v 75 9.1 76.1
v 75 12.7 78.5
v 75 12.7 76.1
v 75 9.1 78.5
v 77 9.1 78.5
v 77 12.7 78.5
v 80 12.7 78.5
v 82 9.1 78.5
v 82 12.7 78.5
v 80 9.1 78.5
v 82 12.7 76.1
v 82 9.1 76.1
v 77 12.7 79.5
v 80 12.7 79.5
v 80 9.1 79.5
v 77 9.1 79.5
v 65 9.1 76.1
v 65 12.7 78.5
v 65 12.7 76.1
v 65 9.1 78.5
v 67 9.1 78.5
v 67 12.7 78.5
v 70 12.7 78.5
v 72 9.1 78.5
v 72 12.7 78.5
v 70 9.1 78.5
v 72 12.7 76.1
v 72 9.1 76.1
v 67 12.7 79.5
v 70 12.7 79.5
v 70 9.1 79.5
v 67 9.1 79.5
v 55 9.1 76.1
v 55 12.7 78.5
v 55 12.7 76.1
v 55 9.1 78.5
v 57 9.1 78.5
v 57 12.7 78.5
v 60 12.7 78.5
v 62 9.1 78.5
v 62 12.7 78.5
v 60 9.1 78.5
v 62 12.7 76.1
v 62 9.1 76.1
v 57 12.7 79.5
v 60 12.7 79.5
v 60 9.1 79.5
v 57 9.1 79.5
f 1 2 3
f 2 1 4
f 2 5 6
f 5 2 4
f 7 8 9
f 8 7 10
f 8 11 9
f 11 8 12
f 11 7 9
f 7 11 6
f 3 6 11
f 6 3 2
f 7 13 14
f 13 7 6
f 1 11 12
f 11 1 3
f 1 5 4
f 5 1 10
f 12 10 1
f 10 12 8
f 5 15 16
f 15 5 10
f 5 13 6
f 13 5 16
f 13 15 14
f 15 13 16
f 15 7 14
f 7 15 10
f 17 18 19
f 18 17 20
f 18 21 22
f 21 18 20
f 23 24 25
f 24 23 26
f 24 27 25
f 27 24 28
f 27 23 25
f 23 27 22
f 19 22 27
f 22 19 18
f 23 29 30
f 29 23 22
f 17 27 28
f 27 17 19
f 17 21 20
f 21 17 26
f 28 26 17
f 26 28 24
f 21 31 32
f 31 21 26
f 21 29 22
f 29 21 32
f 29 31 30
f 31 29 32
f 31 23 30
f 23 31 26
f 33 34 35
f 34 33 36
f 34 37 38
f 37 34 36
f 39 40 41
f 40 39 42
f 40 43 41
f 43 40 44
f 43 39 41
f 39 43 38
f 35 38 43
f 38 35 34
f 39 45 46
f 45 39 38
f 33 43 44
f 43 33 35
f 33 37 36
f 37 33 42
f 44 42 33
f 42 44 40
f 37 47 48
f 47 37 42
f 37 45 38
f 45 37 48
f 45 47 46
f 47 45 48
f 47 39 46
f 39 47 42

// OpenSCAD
// file: D:/Projects/assembly-workshop/outputs/Screen_5in_SCR5-G_2026-10-30/checks/geometry.scad
// SCR5-G; mm; FRONT view: X right, Z up, Y into rack. Glass/plate front Y=0.
// Measured values: work/screen-5in/Dimensions.md. Physical fit/strength UNKNOWN.
part="plate";
DROP=0.45; // coupon winner can be substituted here; all three pins use this DROP
LIP=0.8; LIP_ON=true;
LIP_EDGES=[true,true,false,false]; // left,right,bottom,top; Brian: side lips only, cosmetic
FRAME_STEP=1.5; // measured glass-edge inset to metal LCD frame, left/right only
SHIM=0; // moves rear frame seat and plate-boss mating face back
$fn=48;
GCX=33; GCZ=41.5; PW=252; PH=88.8; PT=4;
GW=120.7; GH=77.2; CLEAR=0.2; WW=GW+2*CLEAR; WH=GH+2*CLEAR;
SEAT=13.3+SHIM; FT=3;
SO=[56.45,34]; BTN_X=[45.5,35.5,25.5];
PCB_TOP=38; GAP=0.10; LEAF_T=0.8;
HOLE=[3.4,40.3,44.7];
BX=[GCX-68,GCX+68]; BZ=[10,72];
// DSI connector X extent is unmeasured: conservative assumed 8 mm inward from PCB edge.
DSI=[GCX-60.5,9.1,GCZ-38+30,8,5.25,21];
module xz(y,d){translate([0,y+d,0])rotate([90,0,0])linear_extrude(d)children();}
// rr/rack_slots copied from SCR5-F; same exact slot centres, outline shifted -0.05 Z to centre 44.4.
module rr(w,h,r){hull()for(x=[-w/2+r,w/2-r],z=[-h/2+r,h/2-r])translate([x,z])circle(r=r);}
module rack_slots(){for(x=[-118.2625,118.2625],z=[6.323,38.127,50.773,82.577])translate([x,z])hull()for(dx=[-1.5,1.5])translate([dx,0])circle(d=7);}
module cyl_y(x,y,z,d,h){translate([x,y,z])rotate([-90,0,0])cylinder(d=d,h=h);}
module window_cut(){
  xz(-0.02,4.04)translate([GCX,GCZ])square([WW,WH],center=true);
  // 0.3 x 45-degree chamfer, square corners, front only.
  translate([GCX,0.3,GCZ])rotate([90,0,0])
    linear_extrude(height=0.3,scale=[(WW+0.6)/WW,(WH+0.6)/WH])square([WW,WH],center=true);
}
module lips(){
  // Cosmetic side ledges only; rear frame/standoffs set depth and retain the screen.
  if(LIP_ON)for(i=[0:3])if(LIP_EDGES[i]){
    if(i<2)translate([GCX+(i==0?-WW/2:WW/2-LIP),2.5,GCZ-GH/2+4])cube([LIP,0.8,GH-8]);
    else translate([GCX-GW/2+4,2.5,GCZ+(i==2?-WH/2:WH/2-LIP)])cube([GW-8,0.8,LIP]);
  }
}
// Leaf/nub/bump geometry copied from SCR5-WP-A, translated to this glass centre.
module leaves(){for(x=BTN_X)translate([GCX+x-1.5,0,GCZ]){
  translate([0,0,PCB_TOP+GAP+0.9+0.1])cube([3,11.8,LEAF_T]);
  translate([0,10.2,PCB_TOP+GAP])cube([3,1.4,1.0+LEAF_T/2]);
  translate([0,10.4,PCB_TOP+GAP+1.0+LEAF_T])cube([3,1.0,0.9]);
}}
module plate(){difference(){union(){
  difference(){xz(0,PT)translate([0,PH/2])rr(PW,PH,2.5);window_cut();}
  for(x=BX,z=BZ)cyl_y(x,3.9,z,8,SEAT-3.9);
  leaves(); lips();
 }
 xz(-0.02,4.04)rack_slots();
 for(x=BTN_X)translate([GCX+x-HOLE[0]/2,-0.02,GCZ+HOLE[1]])cube([HOLE[0],SEAT+FT+0.04,HOLE[2]-HOLE[1]]);
 // Printed-in screw pilots (no heat-set OD assumption): nominal M2.5, fit UNKNOWN.
 for(x=BX,z=BZ)cyl_y(x,SEAT-6,z,2.1,6.02);
 // Rear engraving, 0.5 deep, left field.
 xz(3.5,0.52)translate([-75,40])mirror([1,0])text("SCR5-G",size=6,halign="center",font="Liberation Sans:style=Bold");
}}
module frame_blank(){
  // C-shaped perimeter; no material across the board centre / touch FPC.
  xz(SEAT,FT)translate([GCX,GCZ])difference(){square([132,76],center=true);square([116,60],center=true);}
  for(sx=[-1,1],sz=[-1,1])cyl_y(GCX+sx*SO[0],SEAT,GCZ+sz*SO[1],9,FT);
  for(x=BX,z=BZ)hull(){cyl_y(x,SEAT,z,8,FT);cyl_y(GCX+(x<GCX?-62:62),SEAT,z,8,FT);}
}
module dsi_keepout(){translate([DSI[0]-3,DSI[1]-3,DSI[2]-3])cube([DSI[3]+6,DSI[4]+6,DSI[5]+6]);}
module ribbon_route(){
  // Open left/up corridor 18 mm wide; extends past top of plate.
  translate([GCX-84,6.1,GCZ-11])cube([18,24,65]);
  translate([GCX-84,6.1,GCZ-11])cube([32,24,27]);
}
module frame(){difference(){frame_blank();dsi_keepout();ribbon_route();
 for(sx=[-1,1],sz=[-1,1])cyl_y(GCX+sx*SO[0],SEAT-0.02,GCZ+sz*SO[1],2.8,FT+0.04);
 for(x=BX,z=BZ)cyl_y(x,SEAT-0.02,z,2.8,FT+0.04);
}}
// Pin polygon/cap/notch/dot design copied unchanged from SCR5-WP-A.
module pin(d,dots){s=2*d+0.5;difference(){union(){
 translate([-1.5,0,0])rotate([90,0,90])linear_extrude(3)polygon([
 [-s-0.02,40.5],[10.2,40.5],[10.2,41.0],[11.5,41.0],[11.5+2*d,41.0-d],[15,41.0-d],[15,44.5],[-s-0.02,44.5]]);
 translate([-2.5,-s-1.5,39.6])cube([5,1.5,5.8]);
 }for(i=[0:dots-1])translate([(i-(dots-1)/2)*1.4,-s-1.5-0.01,43.5])rotate([-90,0,0])cylinder(d=0.9,h=0.4);}}
module placed_pin(i){translate([GCX+BTN_X[i],0,GCZ])pin(DROP,i+1);}
// Measured layers: cover glass 0.9 + second glass 1.6, metal frame 3.0,
// open gap 2.0, PCB 1.6. Metal frame inset ~1.5 at LEFT/RIGHT only.
// PCB centred under glass and full metal-frame top/bottom extent remain UNKNOWN.
module glass(){translate([GCX-GW/2,0,GCZ-GH/2])cube([GW,2.5,GH]);}
module lcd(){
  translate([GCX-GW/2+FRAME_STEP,2.5,GCZ-GH/2])cube([GW-2*FRAME_STEP,3.0,GH]);
}
module pcb(){translate([GCX-60.5,7.5,GCZ-38])cube([121,1.6,76]);}
module standoffs(){for(sx=[-1,1],sz=[-1,1])difference(){cyl_y(GCX+sx*SO[0],9.1,GCZ+sz*SO[1],5.5,4.2);cyl_y(GCX+sx*SO[0],9.08,GCZ+sz*SO[1],2.5,4.24);}}
module buttons(){for(x=BTN_X){
 translate([GCX+x-3.5,9.1,GCZ+38-3.4])cube([7,3.6,2.4]);
 translate([GCX+x-1.5,9.1,GCZ+37])cube([3,3.6,1]);
}}
module dsi(){translate([DSI[0],DSI[1],DSI[2]])cube([DSI[3],DSI[4],DSI[5]]);}
module touch(){translate([GCX-10,9.1,GCZ-5])cube([20,2,10]);} // lateral extent unmeasured
module dummy(){glass();lcd();pcb();standoffs();buttons();dsi();touch();}
module assembly(){color("gray")plate();color("orange")frame();for(i=[0:2])color("cyan")placed_pin(i);color([0.2,0.3,0.4,0.4])dummy();}
// main file
include <D:/Projects/assembly-workshop/outputs/Screen_5in_SCR5-G_2026-10-30/checks/geometry.scad>
buttons();
